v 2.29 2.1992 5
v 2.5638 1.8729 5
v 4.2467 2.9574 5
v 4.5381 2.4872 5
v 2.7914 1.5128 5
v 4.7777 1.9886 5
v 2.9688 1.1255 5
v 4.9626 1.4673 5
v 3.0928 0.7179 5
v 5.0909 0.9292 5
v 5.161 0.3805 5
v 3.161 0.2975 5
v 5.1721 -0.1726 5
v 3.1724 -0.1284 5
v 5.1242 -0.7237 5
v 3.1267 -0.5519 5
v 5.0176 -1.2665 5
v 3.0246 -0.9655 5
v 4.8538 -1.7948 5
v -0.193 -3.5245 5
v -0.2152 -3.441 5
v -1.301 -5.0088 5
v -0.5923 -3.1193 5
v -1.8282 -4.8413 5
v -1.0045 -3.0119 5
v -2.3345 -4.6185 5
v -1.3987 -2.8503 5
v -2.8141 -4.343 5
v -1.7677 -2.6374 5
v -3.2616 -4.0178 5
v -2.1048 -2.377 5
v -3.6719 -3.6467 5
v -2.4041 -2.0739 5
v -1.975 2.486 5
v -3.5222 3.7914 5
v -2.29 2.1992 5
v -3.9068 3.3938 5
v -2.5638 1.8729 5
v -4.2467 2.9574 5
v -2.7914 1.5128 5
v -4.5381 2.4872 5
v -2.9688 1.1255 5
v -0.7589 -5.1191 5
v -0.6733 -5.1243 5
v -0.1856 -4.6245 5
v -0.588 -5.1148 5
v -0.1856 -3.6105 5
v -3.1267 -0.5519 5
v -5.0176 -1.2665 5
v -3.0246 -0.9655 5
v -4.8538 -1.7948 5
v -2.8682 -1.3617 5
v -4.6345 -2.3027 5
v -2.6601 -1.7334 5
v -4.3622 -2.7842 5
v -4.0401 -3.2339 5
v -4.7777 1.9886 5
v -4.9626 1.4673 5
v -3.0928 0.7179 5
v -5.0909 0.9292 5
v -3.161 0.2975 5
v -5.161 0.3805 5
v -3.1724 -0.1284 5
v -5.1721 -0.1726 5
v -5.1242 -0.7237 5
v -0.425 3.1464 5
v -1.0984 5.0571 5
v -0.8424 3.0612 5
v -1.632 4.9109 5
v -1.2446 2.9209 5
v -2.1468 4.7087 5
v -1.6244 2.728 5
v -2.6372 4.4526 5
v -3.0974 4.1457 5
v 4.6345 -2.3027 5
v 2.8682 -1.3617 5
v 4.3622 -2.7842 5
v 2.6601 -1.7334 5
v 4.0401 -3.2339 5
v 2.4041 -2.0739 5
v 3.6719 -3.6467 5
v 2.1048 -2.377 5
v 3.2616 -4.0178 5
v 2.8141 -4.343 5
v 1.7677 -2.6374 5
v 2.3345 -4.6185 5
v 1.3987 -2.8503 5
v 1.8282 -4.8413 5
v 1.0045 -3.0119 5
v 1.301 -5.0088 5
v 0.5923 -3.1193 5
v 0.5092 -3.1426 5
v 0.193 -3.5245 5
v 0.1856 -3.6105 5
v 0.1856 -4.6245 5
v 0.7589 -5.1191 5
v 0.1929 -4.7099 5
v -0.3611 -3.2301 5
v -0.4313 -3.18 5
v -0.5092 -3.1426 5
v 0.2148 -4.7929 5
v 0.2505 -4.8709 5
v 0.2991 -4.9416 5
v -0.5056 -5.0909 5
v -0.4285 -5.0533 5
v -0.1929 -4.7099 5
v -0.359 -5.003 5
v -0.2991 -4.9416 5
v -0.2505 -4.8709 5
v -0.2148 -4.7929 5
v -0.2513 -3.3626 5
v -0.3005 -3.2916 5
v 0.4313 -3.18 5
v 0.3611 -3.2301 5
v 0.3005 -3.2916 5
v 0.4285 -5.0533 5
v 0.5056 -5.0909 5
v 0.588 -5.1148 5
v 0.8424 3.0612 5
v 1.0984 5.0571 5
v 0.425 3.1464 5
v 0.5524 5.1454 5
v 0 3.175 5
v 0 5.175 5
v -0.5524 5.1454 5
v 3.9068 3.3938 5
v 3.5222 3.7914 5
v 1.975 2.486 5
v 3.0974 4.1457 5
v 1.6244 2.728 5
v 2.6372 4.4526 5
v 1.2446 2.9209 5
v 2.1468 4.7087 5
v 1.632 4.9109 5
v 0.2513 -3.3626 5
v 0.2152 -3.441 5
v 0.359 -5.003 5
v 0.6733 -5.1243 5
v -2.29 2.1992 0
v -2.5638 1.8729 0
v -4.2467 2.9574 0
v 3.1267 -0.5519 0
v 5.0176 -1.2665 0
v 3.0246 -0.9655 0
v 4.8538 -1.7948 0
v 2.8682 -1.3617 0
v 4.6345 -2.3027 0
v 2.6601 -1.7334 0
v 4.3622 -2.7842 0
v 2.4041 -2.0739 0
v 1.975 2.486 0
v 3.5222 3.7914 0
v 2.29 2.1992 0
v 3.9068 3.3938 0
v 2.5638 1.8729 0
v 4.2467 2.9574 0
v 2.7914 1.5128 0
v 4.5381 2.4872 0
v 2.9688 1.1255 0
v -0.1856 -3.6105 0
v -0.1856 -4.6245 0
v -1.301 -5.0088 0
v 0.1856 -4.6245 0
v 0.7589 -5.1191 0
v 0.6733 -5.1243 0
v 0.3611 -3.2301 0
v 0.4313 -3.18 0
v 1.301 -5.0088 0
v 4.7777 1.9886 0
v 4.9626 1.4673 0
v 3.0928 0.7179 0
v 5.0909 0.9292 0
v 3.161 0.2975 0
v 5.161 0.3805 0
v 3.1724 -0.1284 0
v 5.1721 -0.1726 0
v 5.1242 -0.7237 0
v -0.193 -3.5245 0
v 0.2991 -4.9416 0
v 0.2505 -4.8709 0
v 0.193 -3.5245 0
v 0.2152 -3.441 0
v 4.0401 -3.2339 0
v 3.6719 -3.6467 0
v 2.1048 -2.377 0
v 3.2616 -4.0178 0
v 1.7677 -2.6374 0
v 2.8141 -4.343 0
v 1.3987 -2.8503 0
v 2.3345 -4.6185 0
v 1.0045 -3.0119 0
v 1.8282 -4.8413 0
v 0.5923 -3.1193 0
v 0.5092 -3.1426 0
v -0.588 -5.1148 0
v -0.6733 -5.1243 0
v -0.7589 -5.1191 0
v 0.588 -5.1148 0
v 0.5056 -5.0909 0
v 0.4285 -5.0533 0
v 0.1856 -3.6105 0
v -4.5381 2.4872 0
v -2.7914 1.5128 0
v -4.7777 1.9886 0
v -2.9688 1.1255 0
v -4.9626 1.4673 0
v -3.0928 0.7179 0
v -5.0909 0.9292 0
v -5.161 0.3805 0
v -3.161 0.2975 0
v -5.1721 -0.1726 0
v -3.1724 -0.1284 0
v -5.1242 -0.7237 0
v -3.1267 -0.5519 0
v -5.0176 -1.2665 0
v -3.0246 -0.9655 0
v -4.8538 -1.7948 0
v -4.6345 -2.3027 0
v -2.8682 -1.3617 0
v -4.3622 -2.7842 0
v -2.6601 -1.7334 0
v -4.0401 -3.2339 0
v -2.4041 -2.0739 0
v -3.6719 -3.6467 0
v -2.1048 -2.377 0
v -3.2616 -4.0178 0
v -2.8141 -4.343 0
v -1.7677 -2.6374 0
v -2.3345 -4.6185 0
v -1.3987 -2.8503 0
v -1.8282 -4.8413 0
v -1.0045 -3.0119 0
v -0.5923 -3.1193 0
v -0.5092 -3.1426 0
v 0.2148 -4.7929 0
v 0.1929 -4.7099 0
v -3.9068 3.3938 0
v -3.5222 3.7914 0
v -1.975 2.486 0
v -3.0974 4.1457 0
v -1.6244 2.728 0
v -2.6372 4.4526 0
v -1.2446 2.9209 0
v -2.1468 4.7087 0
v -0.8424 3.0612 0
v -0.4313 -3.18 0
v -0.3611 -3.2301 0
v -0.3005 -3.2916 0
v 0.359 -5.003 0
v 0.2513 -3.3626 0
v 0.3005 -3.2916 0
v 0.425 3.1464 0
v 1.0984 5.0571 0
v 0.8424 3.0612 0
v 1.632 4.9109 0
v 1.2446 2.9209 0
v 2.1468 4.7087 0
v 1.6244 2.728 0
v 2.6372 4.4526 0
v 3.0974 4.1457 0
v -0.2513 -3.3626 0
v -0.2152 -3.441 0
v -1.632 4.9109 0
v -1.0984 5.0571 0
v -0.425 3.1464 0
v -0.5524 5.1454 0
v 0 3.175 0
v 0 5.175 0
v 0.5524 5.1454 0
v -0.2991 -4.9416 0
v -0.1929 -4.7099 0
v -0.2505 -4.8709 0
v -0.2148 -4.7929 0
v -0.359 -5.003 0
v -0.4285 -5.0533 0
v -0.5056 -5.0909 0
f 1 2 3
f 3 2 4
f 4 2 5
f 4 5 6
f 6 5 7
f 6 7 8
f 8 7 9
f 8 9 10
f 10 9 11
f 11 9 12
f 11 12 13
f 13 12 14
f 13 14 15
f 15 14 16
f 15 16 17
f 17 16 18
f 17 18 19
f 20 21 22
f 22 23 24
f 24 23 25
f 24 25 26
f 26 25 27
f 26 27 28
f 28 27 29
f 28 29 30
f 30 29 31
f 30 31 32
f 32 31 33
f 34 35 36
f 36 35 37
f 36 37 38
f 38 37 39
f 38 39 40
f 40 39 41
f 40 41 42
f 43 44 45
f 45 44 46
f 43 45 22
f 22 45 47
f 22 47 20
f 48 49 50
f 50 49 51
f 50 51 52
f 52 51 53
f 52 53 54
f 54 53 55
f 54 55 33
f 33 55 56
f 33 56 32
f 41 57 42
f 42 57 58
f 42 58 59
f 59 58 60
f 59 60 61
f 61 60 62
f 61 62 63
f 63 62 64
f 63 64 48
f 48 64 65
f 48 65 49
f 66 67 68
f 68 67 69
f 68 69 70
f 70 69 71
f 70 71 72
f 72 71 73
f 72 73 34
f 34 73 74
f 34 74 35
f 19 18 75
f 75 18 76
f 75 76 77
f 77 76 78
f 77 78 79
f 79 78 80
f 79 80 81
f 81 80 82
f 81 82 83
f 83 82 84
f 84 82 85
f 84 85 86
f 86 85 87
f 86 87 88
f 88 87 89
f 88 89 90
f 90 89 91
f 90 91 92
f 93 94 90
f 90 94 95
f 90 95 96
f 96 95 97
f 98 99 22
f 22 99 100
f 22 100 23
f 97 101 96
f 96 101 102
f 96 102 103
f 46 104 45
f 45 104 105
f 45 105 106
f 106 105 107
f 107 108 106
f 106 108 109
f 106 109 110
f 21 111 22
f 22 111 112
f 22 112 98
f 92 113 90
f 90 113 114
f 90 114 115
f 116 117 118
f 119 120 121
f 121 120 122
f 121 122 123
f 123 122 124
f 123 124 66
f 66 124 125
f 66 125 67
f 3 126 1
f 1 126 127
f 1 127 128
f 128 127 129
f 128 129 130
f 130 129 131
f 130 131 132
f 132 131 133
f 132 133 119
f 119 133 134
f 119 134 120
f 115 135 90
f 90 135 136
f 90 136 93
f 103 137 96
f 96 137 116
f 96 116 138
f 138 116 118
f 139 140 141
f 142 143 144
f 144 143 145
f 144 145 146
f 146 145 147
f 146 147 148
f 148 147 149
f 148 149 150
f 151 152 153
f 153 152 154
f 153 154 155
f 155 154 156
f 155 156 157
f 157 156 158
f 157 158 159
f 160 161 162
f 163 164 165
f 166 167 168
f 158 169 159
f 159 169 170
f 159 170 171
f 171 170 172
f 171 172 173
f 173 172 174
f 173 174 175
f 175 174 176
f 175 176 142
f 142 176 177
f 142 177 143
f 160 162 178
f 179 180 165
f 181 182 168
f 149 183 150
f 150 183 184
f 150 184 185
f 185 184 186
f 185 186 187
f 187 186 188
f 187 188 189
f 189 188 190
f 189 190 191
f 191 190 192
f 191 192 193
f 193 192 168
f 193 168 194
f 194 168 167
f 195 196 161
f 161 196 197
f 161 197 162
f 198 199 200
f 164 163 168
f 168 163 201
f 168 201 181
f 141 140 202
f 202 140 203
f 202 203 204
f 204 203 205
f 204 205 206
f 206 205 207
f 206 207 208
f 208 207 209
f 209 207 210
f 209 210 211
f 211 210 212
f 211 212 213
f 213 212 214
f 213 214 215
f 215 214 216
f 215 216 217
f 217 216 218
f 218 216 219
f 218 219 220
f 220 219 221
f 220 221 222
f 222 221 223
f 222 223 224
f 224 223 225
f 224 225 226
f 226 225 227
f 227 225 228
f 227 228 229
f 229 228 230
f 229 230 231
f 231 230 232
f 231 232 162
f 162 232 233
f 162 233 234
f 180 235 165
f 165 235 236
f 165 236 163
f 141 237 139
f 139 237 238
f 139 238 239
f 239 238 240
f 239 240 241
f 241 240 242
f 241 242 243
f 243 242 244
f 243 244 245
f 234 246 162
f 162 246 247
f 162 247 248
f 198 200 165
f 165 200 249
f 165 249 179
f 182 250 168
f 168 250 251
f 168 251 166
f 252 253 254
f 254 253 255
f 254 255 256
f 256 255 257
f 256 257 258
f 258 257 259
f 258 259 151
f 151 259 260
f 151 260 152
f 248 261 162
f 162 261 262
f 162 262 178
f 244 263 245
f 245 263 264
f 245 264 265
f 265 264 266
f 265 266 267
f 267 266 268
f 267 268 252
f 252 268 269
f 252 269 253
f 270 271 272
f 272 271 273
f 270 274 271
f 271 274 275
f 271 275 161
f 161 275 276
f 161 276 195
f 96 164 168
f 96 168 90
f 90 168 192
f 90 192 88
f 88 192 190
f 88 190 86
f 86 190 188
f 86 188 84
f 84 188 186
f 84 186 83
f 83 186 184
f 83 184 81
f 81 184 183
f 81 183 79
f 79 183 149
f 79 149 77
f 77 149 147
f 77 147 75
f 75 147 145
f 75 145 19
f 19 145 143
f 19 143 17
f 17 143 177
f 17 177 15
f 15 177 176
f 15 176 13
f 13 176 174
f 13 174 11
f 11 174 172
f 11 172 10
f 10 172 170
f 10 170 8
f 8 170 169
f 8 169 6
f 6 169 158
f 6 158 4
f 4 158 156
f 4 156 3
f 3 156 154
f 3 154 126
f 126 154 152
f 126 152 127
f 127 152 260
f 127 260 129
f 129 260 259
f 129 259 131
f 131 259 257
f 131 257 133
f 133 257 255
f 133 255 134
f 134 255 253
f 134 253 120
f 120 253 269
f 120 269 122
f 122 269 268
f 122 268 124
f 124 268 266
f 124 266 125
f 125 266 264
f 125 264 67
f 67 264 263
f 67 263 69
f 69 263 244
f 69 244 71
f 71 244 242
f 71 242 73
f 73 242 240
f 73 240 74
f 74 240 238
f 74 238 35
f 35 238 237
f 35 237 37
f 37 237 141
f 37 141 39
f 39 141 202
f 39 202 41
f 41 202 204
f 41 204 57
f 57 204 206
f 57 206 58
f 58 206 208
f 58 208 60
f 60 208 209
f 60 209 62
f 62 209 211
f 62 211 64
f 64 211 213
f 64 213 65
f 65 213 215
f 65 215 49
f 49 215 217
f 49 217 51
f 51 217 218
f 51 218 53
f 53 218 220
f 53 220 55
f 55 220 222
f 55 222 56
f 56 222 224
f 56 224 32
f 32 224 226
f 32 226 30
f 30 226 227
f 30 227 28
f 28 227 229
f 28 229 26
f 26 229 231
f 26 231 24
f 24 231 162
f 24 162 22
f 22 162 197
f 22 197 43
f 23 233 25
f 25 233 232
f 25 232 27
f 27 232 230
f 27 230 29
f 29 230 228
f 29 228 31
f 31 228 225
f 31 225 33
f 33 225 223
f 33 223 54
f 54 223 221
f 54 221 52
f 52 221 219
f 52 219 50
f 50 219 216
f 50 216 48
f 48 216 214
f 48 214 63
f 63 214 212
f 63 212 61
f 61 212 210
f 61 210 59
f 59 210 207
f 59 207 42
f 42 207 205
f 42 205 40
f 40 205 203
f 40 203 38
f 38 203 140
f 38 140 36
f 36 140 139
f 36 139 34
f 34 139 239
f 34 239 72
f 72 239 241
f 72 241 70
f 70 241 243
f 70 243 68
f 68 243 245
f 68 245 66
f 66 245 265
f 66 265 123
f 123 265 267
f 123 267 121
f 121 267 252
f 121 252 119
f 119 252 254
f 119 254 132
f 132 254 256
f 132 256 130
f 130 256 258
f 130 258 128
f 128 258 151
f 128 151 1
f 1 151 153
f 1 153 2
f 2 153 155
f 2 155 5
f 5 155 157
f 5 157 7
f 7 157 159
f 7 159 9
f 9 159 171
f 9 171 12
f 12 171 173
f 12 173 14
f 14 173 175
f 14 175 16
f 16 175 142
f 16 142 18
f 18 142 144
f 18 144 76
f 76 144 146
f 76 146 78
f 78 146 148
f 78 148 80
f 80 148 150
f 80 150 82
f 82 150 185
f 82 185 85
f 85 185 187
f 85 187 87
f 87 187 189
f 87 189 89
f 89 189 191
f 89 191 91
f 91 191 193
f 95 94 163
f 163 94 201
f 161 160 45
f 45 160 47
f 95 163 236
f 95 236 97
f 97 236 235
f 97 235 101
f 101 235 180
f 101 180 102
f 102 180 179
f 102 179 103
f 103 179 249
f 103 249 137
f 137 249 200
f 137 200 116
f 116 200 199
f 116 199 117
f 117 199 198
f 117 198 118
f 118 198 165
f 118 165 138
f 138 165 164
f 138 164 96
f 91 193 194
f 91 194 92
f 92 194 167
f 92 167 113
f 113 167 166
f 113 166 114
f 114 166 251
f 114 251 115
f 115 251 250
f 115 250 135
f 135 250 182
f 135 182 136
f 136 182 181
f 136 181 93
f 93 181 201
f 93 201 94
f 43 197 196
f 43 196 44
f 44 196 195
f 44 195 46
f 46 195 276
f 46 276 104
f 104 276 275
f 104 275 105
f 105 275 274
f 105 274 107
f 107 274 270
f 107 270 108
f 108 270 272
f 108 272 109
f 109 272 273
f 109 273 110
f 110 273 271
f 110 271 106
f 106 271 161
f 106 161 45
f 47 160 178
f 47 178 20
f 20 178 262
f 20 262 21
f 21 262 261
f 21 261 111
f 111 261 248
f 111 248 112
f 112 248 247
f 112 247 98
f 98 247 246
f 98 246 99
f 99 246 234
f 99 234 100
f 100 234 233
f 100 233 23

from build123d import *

# Parameters (mm, degrees)
SKETCH1_R           = 5.175
SKETCH1_R_2         = 3.175
BOSS_EXTRUDE1_DEPTH = 5
SKETCH5_W           = 0.371171222
SKETCH5_H           = 5
CUT_EXTRUDE1_DEPTH  = 20
FILLET1_R           = 0.5


with BuildPart() as part:
    # Sketch1 → Boss-Extrude1 (new body)
    with BuildSketch(Plane.XY):
        Circle(SKETCH1_R)
        Circle(SKETCH1_R_2, mode=Mode.SUBTRACT)
    extrude(amount=BOSS_EXTRUDE1_DEPTH)

    # Sketch5 → Cut-Extrude1 (cut)
    with BuildSketch(Plane(origin=(0, 0, 0), x_dir=(1, 0, 0), z_dir=(0, 1, 0))):
        with Locations((0, -2.5)):
            Rectangle(SKETCH5_W, SKETCH5_H)
    extrude(amount=-CUT_EXTRUDE1_DEPTH, mode=Mode.SUBTRACT)

    # Fillet1
    fillet1_edges = [part.edges().sort_by_distance(p)[0] for p in [
        (0.185585611, -3.169571419, 2.5),
        (-0.185585611, -3.169571419, 2.5),
        (-0.185585611, -5.171671198, 2.5),
        (0.185585611, -5.171671198, 2.5),
    ]]
    fillet(fillet1_edges, radius=FILLET1_R)


solid = part.part
